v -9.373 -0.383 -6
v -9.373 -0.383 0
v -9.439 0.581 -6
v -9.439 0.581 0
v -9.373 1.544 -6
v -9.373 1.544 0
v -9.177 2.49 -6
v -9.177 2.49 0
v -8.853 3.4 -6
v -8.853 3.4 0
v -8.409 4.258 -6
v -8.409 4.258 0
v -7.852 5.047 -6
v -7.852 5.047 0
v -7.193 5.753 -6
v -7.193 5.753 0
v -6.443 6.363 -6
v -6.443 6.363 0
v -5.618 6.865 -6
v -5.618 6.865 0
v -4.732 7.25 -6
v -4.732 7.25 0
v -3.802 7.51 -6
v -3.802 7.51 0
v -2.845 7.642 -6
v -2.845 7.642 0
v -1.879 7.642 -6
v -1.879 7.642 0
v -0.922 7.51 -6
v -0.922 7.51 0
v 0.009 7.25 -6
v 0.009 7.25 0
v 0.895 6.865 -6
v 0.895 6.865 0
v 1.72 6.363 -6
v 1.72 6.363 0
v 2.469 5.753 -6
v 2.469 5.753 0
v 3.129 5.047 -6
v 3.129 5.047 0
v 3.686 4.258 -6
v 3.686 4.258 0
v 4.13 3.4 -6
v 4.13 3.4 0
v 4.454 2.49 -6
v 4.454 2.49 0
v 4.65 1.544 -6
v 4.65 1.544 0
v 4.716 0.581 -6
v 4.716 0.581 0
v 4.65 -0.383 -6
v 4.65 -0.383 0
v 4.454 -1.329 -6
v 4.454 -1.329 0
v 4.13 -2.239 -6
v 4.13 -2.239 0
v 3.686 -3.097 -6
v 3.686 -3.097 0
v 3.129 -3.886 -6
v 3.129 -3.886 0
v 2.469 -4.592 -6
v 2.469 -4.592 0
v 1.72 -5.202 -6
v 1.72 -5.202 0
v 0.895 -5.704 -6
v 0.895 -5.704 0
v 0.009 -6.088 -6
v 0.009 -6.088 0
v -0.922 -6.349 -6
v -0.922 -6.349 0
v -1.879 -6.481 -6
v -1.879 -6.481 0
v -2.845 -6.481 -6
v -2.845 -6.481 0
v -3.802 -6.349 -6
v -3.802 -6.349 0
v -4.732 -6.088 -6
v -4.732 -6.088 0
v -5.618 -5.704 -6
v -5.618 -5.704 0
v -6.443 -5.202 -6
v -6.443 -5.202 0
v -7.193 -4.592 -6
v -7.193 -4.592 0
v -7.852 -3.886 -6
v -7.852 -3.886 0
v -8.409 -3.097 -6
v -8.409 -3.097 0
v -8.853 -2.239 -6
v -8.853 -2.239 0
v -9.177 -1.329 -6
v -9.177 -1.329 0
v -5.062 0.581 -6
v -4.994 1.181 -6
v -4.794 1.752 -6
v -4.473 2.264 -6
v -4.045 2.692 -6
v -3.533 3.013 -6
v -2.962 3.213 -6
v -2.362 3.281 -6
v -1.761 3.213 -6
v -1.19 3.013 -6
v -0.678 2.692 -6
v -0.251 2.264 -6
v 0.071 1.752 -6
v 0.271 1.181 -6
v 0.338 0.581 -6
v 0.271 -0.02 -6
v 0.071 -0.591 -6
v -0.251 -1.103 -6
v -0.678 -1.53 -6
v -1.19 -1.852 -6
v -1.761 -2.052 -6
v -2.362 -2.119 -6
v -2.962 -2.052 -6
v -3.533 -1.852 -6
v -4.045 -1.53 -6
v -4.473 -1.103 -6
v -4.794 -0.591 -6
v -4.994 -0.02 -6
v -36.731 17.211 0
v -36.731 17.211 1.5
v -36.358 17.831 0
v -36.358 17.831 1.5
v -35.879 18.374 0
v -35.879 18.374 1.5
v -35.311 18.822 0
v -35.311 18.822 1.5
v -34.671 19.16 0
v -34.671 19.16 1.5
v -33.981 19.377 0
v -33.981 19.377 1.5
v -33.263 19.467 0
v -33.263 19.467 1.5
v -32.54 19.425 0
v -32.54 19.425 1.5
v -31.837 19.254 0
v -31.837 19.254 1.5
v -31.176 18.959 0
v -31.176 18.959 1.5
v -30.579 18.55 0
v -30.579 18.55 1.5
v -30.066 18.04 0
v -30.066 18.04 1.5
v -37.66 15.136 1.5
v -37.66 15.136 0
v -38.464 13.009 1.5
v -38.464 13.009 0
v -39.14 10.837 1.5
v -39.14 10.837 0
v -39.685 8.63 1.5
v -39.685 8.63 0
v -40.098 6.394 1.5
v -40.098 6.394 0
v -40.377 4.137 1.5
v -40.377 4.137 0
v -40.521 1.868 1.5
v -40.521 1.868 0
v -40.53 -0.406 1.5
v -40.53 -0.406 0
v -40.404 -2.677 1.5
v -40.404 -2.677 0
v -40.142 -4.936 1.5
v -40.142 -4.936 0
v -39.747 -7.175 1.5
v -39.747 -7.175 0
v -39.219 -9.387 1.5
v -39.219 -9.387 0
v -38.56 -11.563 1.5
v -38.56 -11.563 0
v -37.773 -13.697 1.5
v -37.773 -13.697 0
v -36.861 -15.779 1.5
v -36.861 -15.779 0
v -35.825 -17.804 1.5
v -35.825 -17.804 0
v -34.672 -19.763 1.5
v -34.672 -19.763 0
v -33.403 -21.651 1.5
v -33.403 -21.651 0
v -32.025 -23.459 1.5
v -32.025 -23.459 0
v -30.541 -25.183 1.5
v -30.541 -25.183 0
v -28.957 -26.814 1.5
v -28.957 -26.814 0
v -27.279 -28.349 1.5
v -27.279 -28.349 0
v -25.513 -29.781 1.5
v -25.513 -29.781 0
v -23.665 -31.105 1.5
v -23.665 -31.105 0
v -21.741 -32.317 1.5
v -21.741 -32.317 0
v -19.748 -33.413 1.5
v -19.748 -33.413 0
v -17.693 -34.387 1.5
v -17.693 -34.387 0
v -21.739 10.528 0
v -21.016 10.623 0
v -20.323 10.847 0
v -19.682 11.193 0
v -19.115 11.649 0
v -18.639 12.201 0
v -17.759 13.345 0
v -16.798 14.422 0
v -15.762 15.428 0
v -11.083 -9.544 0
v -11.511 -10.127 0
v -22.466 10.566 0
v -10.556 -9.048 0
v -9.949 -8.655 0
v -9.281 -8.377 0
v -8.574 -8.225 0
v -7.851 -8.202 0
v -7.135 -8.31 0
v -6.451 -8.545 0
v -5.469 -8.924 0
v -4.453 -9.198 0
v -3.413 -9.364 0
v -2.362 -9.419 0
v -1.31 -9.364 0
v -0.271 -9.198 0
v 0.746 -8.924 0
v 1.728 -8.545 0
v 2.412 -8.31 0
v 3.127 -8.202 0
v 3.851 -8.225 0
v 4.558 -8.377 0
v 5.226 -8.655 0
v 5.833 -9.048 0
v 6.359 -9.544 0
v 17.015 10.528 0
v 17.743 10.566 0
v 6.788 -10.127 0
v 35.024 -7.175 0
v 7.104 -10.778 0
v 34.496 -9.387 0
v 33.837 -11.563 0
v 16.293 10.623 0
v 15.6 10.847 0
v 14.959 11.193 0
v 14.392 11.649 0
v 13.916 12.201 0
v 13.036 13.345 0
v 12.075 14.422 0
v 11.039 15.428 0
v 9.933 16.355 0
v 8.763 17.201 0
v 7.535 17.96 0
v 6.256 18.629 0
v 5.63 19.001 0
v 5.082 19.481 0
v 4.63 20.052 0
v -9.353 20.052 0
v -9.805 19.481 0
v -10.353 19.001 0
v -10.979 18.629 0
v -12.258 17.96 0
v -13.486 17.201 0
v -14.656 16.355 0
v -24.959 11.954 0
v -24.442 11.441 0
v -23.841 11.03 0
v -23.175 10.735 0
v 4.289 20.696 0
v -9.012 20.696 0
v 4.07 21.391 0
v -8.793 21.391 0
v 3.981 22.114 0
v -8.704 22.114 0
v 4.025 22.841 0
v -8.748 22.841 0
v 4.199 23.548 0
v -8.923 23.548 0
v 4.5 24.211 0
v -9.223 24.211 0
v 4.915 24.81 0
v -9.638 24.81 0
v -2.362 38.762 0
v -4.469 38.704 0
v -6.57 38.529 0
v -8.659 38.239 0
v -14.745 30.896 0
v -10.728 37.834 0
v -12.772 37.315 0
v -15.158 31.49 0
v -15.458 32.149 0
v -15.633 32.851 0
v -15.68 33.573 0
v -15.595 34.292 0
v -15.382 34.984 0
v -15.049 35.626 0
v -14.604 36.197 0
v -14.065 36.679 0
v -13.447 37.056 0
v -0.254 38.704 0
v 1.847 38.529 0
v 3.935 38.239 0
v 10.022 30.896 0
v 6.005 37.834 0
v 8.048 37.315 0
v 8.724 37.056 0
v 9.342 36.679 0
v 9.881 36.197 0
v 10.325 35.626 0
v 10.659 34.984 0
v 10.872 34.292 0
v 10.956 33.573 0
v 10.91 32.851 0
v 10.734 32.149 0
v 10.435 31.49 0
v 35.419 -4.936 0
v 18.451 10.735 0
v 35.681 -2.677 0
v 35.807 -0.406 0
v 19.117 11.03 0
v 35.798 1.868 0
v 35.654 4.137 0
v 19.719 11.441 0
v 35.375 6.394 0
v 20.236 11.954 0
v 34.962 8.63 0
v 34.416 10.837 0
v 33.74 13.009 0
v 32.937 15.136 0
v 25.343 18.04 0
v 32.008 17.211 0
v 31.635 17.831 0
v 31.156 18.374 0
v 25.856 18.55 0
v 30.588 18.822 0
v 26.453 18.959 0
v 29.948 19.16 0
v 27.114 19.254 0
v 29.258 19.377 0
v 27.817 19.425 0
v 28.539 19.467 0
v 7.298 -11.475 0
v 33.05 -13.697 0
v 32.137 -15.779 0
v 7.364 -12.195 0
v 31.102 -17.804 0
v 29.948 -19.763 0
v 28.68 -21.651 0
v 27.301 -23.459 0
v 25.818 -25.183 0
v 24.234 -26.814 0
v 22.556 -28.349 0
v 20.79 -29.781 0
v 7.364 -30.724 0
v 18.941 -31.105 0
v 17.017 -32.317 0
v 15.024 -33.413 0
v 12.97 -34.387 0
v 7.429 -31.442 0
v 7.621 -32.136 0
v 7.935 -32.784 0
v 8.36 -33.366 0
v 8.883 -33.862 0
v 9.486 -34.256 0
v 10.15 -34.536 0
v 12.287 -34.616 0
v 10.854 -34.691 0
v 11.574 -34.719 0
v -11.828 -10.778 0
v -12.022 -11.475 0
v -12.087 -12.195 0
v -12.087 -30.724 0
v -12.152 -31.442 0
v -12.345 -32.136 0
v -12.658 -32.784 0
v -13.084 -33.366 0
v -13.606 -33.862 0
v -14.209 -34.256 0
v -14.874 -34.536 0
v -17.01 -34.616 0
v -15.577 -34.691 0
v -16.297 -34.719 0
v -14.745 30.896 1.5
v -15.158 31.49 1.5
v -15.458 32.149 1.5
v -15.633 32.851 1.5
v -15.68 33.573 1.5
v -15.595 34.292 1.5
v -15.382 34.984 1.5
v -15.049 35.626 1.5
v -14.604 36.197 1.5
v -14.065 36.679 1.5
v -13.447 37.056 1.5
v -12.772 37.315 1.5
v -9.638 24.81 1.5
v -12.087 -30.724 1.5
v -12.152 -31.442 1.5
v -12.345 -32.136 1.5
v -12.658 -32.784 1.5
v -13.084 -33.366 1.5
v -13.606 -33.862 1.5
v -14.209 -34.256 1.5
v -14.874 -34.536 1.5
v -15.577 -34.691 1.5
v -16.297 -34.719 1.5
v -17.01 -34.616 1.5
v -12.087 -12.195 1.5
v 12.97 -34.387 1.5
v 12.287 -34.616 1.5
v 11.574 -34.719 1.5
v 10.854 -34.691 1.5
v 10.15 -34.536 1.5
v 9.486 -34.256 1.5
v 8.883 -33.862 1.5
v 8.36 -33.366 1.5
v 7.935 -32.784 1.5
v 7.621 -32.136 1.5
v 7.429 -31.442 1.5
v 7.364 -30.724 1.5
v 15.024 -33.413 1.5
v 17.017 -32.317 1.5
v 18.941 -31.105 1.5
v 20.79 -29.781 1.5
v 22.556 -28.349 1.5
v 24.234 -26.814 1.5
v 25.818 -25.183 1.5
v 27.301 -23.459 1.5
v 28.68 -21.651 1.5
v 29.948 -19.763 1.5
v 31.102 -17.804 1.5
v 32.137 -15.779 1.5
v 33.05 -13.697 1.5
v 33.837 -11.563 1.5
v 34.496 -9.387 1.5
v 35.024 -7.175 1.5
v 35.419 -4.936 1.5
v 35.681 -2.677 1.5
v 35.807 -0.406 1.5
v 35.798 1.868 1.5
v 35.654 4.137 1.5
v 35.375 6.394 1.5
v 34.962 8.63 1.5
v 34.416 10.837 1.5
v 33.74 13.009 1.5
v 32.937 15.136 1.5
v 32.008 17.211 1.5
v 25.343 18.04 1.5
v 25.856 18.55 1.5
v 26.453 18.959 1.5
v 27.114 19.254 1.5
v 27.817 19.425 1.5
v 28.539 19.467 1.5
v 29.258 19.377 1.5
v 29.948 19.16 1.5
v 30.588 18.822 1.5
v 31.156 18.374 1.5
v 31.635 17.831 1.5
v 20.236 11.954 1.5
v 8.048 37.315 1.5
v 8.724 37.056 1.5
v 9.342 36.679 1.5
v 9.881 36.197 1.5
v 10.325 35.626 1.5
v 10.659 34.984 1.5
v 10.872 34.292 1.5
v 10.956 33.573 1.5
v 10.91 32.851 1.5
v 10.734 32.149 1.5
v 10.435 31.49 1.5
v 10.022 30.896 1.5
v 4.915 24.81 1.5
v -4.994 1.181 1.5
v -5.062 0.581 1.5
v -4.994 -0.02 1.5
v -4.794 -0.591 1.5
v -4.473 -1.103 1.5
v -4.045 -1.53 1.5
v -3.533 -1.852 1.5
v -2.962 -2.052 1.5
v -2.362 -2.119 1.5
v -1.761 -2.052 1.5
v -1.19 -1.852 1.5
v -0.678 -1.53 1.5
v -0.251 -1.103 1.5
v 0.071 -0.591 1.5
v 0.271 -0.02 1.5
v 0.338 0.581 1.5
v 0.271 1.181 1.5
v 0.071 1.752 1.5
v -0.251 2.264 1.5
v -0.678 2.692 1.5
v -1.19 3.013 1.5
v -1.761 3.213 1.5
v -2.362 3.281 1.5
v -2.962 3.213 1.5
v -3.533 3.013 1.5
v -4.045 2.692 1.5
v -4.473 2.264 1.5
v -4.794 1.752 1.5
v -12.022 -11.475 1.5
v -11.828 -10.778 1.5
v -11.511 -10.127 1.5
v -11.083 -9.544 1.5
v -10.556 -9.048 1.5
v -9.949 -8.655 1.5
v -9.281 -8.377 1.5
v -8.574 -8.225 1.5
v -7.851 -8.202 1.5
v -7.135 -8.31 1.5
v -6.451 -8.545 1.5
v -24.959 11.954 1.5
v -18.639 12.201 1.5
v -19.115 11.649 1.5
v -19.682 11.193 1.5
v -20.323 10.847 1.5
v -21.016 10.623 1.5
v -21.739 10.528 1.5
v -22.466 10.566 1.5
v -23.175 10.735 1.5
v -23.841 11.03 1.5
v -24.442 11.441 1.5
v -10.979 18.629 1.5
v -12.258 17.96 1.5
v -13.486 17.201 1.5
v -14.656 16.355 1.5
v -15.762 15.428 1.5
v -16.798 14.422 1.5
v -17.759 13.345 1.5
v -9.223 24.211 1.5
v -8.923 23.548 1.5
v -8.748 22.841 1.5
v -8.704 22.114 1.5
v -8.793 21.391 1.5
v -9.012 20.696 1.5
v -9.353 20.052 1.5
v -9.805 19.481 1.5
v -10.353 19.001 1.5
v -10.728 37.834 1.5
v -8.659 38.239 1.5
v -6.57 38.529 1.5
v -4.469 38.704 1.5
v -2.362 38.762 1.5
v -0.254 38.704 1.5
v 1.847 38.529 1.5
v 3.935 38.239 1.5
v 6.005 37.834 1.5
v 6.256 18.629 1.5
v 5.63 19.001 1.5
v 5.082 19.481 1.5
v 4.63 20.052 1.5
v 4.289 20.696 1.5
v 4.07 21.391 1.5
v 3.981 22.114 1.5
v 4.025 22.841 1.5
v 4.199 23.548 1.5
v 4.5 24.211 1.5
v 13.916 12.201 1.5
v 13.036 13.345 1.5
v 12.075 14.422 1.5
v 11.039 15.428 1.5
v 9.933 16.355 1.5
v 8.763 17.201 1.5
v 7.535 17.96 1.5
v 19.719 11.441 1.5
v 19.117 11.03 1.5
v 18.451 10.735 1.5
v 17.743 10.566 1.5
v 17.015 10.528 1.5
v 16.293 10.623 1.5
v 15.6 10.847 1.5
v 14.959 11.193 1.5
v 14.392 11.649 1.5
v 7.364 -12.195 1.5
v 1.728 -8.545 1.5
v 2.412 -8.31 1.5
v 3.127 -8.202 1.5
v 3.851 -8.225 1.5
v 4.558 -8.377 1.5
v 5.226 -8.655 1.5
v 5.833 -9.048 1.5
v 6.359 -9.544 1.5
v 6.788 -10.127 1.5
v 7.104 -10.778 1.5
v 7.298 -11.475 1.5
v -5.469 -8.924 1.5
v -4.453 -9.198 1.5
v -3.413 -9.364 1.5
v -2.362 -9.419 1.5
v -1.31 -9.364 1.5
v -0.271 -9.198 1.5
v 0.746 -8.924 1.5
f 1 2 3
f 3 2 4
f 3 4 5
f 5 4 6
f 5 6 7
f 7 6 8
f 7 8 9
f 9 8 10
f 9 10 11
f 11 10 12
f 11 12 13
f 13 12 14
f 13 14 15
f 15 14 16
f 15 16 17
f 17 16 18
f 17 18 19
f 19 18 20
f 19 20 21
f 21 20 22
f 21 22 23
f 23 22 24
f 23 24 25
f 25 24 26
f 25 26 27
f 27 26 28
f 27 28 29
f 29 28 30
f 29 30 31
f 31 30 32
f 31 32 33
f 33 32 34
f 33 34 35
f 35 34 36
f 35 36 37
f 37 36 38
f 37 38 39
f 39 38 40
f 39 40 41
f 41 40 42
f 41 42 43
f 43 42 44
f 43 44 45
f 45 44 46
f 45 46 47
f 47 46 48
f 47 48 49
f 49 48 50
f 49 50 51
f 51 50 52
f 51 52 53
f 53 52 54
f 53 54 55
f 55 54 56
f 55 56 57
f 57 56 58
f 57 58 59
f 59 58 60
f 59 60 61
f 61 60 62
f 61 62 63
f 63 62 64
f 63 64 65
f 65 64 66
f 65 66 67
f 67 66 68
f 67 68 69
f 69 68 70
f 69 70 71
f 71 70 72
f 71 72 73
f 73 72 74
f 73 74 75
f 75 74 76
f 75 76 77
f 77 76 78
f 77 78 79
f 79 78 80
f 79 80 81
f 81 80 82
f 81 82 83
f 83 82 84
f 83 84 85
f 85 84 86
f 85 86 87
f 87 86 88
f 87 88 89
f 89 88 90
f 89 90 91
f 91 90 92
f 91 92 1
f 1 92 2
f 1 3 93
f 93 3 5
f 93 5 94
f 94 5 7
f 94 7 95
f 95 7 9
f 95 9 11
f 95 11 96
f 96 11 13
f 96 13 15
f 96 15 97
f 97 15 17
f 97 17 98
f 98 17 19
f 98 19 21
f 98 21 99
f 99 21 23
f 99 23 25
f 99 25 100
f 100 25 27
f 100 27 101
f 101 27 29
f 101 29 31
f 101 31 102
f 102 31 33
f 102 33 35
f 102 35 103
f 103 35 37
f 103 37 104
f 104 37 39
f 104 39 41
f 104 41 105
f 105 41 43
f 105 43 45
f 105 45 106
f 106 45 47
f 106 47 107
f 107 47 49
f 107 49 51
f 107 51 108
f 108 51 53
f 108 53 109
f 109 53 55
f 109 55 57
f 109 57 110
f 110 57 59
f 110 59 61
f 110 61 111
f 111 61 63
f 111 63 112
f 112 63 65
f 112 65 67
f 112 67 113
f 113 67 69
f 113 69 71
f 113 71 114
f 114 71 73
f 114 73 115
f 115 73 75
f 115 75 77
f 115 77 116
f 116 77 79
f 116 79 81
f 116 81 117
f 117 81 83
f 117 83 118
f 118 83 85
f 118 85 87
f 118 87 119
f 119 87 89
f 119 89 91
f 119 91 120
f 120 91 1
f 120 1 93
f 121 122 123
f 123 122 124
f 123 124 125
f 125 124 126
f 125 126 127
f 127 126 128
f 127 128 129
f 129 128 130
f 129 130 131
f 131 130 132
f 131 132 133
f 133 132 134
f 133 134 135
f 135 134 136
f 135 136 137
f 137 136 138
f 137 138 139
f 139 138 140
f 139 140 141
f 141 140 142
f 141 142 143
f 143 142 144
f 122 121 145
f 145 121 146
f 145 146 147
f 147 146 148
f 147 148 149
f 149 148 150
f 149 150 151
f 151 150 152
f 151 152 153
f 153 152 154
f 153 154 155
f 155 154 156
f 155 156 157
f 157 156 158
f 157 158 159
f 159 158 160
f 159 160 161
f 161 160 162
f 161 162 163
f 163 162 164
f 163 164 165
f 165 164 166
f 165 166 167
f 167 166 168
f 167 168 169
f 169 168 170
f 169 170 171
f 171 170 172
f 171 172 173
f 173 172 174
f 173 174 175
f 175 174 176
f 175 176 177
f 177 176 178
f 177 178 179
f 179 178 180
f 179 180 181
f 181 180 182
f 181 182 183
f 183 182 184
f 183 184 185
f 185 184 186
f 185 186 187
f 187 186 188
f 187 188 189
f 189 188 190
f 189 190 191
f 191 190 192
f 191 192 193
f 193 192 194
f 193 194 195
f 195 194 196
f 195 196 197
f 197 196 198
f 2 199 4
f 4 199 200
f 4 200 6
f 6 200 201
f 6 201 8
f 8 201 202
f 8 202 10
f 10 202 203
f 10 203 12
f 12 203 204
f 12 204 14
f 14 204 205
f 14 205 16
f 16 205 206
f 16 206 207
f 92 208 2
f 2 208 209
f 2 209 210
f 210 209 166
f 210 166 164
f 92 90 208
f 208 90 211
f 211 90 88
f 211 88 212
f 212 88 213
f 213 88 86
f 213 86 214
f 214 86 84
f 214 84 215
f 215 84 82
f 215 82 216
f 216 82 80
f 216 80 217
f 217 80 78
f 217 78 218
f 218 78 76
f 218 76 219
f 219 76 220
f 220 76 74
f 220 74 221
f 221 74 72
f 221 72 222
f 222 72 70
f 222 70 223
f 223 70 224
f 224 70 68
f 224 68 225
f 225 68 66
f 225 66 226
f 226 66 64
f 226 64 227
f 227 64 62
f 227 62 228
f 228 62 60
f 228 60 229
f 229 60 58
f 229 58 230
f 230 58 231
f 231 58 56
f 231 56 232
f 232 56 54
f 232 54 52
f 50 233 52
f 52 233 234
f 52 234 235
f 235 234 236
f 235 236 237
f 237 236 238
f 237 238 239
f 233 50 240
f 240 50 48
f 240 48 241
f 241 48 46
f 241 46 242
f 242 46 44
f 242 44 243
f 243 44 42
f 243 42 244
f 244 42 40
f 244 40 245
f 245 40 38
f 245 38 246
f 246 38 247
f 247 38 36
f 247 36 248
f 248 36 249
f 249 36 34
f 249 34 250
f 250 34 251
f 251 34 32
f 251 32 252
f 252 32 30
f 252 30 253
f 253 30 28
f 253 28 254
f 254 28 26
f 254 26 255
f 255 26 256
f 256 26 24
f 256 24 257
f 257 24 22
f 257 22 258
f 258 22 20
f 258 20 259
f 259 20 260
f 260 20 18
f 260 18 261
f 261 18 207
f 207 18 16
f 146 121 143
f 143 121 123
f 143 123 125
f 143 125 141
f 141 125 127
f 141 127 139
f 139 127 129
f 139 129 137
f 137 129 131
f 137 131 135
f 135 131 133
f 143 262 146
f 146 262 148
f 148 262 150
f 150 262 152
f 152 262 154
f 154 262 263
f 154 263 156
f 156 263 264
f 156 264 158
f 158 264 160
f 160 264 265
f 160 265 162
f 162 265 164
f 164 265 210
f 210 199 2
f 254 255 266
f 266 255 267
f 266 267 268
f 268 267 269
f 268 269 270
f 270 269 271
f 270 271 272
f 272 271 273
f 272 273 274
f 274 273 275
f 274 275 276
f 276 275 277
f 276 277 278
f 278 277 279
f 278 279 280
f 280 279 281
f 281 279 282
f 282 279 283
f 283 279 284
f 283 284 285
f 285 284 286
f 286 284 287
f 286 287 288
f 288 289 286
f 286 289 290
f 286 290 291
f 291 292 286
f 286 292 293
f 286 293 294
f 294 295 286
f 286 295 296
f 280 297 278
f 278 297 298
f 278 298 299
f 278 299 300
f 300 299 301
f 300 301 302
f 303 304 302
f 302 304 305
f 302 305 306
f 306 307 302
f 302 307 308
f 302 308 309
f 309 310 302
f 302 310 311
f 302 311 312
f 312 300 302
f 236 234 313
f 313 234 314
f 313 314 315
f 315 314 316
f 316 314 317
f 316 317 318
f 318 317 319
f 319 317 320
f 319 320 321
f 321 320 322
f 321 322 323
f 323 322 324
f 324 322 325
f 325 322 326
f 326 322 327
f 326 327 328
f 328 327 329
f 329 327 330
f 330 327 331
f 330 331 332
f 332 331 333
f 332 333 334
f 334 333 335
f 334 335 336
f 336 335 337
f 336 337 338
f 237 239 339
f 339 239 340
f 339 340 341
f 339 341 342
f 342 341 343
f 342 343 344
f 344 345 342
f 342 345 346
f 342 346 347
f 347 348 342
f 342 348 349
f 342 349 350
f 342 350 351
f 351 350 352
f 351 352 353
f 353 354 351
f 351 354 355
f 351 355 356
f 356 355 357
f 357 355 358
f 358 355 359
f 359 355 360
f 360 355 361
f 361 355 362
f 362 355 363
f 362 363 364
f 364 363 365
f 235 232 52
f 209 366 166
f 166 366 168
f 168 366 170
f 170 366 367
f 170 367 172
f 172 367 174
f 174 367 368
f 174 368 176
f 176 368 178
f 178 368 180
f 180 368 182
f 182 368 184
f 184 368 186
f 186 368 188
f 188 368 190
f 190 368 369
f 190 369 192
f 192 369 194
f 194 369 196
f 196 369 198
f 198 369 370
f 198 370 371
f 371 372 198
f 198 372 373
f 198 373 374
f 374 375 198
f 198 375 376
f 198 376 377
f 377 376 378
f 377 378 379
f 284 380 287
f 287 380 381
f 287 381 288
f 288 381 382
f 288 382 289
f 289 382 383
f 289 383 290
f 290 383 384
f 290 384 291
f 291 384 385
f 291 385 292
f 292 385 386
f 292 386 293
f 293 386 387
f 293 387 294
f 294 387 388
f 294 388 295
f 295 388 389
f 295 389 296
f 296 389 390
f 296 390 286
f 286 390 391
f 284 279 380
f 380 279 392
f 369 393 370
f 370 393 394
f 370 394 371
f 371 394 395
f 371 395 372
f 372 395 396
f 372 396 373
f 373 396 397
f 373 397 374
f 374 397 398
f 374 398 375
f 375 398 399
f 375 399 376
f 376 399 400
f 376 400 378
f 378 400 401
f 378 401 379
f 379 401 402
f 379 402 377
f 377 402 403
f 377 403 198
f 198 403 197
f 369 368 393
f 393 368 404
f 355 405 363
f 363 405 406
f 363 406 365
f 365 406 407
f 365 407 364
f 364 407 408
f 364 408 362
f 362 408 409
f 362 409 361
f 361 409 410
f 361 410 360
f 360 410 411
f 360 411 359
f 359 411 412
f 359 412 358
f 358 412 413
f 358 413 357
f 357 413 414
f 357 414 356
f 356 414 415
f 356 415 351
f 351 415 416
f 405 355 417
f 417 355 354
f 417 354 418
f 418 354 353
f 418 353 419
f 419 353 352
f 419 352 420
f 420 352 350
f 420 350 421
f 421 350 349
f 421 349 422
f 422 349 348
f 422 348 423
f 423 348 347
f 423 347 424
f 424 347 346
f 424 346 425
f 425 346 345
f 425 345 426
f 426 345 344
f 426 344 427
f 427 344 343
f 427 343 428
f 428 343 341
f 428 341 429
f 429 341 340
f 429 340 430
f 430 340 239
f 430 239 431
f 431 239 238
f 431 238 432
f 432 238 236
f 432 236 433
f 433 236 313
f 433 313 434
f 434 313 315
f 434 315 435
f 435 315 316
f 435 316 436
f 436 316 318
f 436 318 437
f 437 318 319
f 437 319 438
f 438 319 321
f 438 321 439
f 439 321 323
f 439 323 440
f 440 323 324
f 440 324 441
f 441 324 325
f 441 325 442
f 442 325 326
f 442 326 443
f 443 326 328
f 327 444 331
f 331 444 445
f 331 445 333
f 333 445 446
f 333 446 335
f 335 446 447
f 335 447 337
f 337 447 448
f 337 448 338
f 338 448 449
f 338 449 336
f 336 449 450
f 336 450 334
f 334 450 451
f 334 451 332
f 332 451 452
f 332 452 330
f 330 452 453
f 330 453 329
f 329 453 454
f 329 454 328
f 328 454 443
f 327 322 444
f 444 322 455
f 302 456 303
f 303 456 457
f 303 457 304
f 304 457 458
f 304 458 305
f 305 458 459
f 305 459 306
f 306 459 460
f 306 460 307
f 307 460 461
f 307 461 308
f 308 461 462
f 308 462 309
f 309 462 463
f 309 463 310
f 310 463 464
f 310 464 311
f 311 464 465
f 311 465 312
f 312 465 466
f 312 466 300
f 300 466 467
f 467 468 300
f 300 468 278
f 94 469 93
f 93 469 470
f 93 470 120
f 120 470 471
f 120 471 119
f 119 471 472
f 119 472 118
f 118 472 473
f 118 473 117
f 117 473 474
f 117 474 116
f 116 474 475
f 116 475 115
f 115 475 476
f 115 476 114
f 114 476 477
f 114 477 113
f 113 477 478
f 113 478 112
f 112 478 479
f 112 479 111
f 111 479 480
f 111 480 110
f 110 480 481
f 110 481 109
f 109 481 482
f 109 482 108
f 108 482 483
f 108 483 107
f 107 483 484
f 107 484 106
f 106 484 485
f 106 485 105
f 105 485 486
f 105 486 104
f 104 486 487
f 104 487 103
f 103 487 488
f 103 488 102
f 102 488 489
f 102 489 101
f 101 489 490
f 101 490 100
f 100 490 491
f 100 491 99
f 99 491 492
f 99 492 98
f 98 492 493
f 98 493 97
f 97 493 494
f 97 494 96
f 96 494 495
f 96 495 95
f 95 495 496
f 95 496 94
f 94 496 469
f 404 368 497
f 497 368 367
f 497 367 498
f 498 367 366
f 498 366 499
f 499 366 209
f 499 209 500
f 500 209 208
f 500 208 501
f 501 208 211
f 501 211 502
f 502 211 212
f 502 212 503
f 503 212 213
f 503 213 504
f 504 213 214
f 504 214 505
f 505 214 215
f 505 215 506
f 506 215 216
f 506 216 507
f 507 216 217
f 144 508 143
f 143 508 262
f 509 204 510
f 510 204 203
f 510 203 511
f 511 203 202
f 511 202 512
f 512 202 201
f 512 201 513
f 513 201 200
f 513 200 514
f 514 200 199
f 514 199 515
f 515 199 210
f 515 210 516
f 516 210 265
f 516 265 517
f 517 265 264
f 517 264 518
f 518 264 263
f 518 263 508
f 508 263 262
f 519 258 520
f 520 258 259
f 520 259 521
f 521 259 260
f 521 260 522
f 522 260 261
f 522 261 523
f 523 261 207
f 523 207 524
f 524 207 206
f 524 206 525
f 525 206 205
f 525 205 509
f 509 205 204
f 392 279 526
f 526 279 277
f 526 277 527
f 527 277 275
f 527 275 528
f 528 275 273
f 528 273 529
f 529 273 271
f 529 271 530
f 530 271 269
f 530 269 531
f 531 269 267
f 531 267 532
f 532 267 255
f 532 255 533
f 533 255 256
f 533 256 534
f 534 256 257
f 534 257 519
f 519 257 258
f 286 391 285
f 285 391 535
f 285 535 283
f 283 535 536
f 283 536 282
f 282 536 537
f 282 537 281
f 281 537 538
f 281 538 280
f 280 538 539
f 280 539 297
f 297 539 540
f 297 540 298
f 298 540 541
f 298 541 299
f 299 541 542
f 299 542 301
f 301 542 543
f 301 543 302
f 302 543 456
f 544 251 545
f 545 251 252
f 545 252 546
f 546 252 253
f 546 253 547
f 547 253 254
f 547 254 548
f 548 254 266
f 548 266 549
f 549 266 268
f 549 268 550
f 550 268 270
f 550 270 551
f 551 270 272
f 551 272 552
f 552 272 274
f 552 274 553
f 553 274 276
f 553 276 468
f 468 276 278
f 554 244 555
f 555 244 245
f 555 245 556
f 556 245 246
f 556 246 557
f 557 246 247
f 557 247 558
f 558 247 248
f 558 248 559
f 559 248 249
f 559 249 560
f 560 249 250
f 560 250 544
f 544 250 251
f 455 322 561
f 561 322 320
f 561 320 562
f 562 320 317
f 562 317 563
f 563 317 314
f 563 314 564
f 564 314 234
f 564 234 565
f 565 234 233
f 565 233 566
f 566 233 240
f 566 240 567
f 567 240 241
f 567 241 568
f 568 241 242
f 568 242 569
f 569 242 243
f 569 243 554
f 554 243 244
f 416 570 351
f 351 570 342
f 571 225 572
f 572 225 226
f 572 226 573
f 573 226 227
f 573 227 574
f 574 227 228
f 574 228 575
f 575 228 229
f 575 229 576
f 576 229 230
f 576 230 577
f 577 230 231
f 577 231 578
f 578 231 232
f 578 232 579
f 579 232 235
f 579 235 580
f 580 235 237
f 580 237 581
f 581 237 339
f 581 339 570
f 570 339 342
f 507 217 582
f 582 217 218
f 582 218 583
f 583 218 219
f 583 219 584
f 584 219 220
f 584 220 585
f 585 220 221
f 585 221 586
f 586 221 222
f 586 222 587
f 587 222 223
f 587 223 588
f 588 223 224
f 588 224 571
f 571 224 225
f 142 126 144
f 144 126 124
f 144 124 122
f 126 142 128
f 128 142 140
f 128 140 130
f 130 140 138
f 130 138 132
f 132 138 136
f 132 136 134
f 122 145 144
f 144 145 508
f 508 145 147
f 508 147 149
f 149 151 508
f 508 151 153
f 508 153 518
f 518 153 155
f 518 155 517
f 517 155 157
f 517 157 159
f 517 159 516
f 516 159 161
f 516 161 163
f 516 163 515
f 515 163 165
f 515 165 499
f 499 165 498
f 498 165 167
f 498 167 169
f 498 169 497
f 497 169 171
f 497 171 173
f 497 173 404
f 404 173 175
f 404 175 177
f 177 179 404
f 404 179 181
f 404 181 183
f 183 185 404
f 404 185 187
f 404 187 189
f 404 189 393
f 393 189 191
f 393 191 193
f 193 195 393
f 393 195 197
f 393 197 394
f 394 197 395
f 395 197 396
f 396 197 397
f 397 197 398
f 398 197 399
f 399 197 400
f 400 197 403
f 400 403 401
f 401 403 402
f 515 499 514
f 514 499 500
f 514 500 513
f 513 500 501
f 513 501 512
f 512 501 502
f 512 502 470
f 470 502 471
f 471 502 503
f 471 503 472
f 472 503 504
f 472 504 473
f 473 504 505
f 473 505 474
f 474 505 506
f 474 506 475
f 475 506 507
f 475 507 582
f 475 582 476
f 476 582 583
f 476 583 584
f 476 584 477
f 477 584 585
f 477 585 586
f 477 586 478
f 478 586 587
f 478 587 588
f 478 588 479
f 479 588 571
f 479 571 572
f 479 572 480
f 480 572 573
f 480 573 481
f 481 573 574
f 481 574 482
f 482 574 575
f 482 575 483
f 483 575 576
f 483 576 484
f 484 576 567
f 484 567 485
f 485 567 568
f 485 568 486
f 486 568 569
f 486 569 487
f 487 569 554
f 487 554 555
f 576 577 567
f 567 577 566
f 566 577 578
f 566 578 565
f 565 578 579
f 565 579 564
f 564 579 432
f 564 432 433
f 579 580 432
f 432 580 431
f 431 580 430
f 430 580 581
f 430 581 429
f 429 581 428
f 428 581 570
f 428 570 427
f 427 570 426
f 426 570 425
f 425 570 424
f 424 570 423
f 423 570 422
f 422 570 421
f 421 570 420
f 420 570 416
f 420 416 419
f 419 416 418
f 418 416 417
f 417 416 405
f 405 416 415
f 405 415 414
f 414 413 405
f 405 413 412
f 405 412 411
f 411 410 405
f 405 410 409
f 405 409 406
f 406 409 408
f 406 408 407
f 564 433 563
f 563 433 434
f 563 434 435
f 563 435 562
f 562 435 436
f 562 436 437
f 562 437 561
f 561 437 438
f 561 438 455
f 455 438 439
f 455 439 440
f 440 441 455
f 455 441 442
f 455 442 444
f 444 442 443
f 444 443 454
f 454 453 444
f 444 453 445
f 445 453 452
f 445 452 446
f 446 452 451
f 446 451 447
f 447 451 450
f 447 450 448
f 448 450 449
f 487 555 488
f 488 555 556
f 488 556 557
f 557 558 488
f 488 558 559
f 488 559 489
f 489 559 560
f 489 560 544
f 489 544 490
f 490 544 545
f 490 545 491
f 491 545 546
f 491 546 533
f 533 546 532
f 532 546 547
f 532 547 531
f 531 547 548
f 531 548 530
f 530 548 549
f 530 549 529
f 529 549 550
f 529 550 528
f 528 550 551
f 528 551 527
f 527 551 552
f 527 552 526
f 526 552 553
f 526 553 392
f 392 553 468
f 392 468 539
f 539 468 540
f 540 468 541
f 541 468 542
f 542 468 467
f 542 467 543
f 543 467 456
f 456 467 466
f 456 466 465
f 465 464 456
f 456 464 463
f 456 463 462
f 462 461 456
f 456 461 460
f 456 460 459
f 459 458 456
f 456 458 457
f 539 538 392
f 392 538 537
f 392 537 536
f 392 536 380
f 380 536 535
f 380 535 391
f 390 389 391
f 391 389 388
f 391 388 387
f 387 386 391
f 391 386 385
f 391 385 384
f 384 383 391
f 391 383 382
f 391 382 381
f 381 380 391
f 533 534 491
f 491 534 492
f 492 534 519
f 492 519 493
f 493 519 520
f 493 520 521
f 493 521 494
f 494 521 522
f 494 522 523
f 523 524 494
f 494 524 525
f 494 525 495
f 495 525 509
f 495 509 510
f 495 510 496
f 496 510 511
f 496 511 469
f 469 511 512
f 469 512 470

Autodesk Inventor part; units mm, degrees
ref_plane "YZ Plane" through (0, 0, 0) normal (1, 0, 0) x (0, 1, 0)
ref_plane "XZ Plane" through (0, 0, 0) normal (0, 1, 0) x (-1, 0, 0)
ref_plane "XY Plane" through (0, 0, 0) normal (0, 0, 1) x (1, 0, 0)
sketch "Sketch1" plane through (0, 0, 0) normal (0, 0, 1) x (1, 0, 0)
  arc A0 (7.3638, -36.4581) -> (12.7537, -40.2088) centre (11.3638, -36.4581) ccw
  arc A1 (12.7537, -40.2088) -> (35.5951, 21.83) centre (-2.3616, 0.5806) ccw
  arc A2 (35.5951, 21.83) -> (29.0406, 22.4471) centre (32.1048, 19.876) ccw
  line L0 (29.0406, 22.4471) -> (20.2358, 11.954)
  arc A3 (13.9161, 12.201) -> (20.2358, 11.954) centre (17.1717, 14.5251) ccw
  arc A4 (13.9161, 12.201) -> (6.2557, 18.6289) centre (-2.3616, 0.5806) ccw
  arc A5 (4.9149, 24.8097) -> (6.2557, 18.6289) centre (7.9791, 22.2386) ccw
  line L1 (4.9149, 24.8097) -> (13.7198, 35.3029)
  arc A6 (13.7198, 35.3029) -> (11.9738, 41.6506) centre (10.6556, 37.874) ccw
  arc A7 (11.9738, 41.6506) -> (-16.6971, 41.6506) centre (-2.3616, 0.5806) ccw
  arc A8 (-16.6971, 41.6506) -> (-18.443, 35.3029) centre (-15.3789, 37.874) ccw
  line L2 (-18.443, 35.3029) -> (-9.6382, 24.8097)
  arc A9 (-10.979, 18.6289) -> (-9.6382, 24.8097) centre (-12.7024, 22.2386) ccw
  arc A10 (-10.979, 18.6289) -> (-18.6394, 12.201) centre (-2.3616, 0.5806) ccw
  arc A11 (-24.9591, 11.954) -> (-18.6394, 12.201) centre (-21.8949, 14.5251) ccw
  line L3 (-24.9591, 11.954) -> (-33.7639, 22.4471)
  arc A12 (-33.7639, 22.4471) -> (-40.3184, 21.83) centre (-36.8281, 19.876) ccw
  arc A13 (-40.3184, 21.83) -> (-17.477, -40.2088) centre (-2.3616, 0.5806) ccw
  arc A14 (-17.477, -40.2088) -> (-12.0871, -36.4581) centre (-16.0871, -36.4581) ccw
  line L4 (-12.0871, -36.4581) -> (-12.0871, -12.1952)
  arc A15 (-6.4512, -8.5449) -> (-12.0871, -12.1952) centre (-8.0871, -12.1952) ccw
  arc A16 (-6.4512, -8.5449) -> (1.7279, -8.5449) centre (-2.3616, 0.5806) ccw
  arc A17 (7.3638, -12.1952) -> (1.7279, -8.5449) centre (3.3638, -12.1952) ccw
  line L5 (7.3638, -12.1952) -> (7.3638, -36.4581)
  circle A18 centre (-2.3616, 0.5806) radius 2.7
  circle A19 centre (29.9741, 13.9745) radius 2.6
  circle A20 centre (32.6384, 0.5806) radius 2.6
  circle A21 centre (29.9741, -12.8133) radius 2.6
  circle A22 centre (22.3871, -24.1682) radius 2.6
  circle A23 centre (11.0323, -31.7552) radius 2.6
  circle A24 centre (-34.6974, 13.9745) radius 2.6
  circle A25 centre (-37.3616, 0.5806) radius 2.6
  circle A26 centre (-34.6974, -12.8133) radius 2.6
  circle A27 centre (-27.1104, -24.1682) radius 2.6
  circle A28 centre (-15.7556, -31.7552) radius 2.6
  circle A29 centre (-2.3616, 35.5806) radius 2.6
  circle A30 centre (-2.3616, 0.5806) radius 38.1814
  point P0 (0, 0)
  point P1 (7.3638, -36.3414)
  point P2 (28.9846, 22.3804)
  point P3 (13.6637, 35.2361)
  point P4 (-18.387, 35.2361)
  point P5 (-33.7079, 22.3804)
  point P6 (-12.0871, -36.3414)
extrude "Extrusion1" add sketch "Sketch1" along normal blind 1.5 contours L5 A17 A16 A15 L4 A30 L3 A11 A10 A9 L2 L1 A5 A4 A3 L0 | A19 | A20 | A21 | A22 | A23 | A24 | A25 | A26 | A27 | A28 | A29
fillet "Fillet1" radius 4 6 edges at (13.6637, 35.2361, 0.75) (28.9846, 22.3804, 0.75) (7.3638, -36.3414, 0.75) (-12.0871, -36.3414, 0.75) (-18.387, 35.2361, 0.75) (-33.7079, 22.3804, 0.75)
sketch "Sketch2" plane through (0, 0, 0) normal (0, 0, -1) x (-1, 0, 0)
  circle A0 centre (2.3616, 0.5806) radius 2.7 projected
  circle A1 centre (2.3616, 0.5806) radius 7.0777
  point P0 (0, 0)
extrude "Extrusion2" add sketch "Sketch2" along normal blind 6
properties part number "LED Diffuser_3DPrint"
